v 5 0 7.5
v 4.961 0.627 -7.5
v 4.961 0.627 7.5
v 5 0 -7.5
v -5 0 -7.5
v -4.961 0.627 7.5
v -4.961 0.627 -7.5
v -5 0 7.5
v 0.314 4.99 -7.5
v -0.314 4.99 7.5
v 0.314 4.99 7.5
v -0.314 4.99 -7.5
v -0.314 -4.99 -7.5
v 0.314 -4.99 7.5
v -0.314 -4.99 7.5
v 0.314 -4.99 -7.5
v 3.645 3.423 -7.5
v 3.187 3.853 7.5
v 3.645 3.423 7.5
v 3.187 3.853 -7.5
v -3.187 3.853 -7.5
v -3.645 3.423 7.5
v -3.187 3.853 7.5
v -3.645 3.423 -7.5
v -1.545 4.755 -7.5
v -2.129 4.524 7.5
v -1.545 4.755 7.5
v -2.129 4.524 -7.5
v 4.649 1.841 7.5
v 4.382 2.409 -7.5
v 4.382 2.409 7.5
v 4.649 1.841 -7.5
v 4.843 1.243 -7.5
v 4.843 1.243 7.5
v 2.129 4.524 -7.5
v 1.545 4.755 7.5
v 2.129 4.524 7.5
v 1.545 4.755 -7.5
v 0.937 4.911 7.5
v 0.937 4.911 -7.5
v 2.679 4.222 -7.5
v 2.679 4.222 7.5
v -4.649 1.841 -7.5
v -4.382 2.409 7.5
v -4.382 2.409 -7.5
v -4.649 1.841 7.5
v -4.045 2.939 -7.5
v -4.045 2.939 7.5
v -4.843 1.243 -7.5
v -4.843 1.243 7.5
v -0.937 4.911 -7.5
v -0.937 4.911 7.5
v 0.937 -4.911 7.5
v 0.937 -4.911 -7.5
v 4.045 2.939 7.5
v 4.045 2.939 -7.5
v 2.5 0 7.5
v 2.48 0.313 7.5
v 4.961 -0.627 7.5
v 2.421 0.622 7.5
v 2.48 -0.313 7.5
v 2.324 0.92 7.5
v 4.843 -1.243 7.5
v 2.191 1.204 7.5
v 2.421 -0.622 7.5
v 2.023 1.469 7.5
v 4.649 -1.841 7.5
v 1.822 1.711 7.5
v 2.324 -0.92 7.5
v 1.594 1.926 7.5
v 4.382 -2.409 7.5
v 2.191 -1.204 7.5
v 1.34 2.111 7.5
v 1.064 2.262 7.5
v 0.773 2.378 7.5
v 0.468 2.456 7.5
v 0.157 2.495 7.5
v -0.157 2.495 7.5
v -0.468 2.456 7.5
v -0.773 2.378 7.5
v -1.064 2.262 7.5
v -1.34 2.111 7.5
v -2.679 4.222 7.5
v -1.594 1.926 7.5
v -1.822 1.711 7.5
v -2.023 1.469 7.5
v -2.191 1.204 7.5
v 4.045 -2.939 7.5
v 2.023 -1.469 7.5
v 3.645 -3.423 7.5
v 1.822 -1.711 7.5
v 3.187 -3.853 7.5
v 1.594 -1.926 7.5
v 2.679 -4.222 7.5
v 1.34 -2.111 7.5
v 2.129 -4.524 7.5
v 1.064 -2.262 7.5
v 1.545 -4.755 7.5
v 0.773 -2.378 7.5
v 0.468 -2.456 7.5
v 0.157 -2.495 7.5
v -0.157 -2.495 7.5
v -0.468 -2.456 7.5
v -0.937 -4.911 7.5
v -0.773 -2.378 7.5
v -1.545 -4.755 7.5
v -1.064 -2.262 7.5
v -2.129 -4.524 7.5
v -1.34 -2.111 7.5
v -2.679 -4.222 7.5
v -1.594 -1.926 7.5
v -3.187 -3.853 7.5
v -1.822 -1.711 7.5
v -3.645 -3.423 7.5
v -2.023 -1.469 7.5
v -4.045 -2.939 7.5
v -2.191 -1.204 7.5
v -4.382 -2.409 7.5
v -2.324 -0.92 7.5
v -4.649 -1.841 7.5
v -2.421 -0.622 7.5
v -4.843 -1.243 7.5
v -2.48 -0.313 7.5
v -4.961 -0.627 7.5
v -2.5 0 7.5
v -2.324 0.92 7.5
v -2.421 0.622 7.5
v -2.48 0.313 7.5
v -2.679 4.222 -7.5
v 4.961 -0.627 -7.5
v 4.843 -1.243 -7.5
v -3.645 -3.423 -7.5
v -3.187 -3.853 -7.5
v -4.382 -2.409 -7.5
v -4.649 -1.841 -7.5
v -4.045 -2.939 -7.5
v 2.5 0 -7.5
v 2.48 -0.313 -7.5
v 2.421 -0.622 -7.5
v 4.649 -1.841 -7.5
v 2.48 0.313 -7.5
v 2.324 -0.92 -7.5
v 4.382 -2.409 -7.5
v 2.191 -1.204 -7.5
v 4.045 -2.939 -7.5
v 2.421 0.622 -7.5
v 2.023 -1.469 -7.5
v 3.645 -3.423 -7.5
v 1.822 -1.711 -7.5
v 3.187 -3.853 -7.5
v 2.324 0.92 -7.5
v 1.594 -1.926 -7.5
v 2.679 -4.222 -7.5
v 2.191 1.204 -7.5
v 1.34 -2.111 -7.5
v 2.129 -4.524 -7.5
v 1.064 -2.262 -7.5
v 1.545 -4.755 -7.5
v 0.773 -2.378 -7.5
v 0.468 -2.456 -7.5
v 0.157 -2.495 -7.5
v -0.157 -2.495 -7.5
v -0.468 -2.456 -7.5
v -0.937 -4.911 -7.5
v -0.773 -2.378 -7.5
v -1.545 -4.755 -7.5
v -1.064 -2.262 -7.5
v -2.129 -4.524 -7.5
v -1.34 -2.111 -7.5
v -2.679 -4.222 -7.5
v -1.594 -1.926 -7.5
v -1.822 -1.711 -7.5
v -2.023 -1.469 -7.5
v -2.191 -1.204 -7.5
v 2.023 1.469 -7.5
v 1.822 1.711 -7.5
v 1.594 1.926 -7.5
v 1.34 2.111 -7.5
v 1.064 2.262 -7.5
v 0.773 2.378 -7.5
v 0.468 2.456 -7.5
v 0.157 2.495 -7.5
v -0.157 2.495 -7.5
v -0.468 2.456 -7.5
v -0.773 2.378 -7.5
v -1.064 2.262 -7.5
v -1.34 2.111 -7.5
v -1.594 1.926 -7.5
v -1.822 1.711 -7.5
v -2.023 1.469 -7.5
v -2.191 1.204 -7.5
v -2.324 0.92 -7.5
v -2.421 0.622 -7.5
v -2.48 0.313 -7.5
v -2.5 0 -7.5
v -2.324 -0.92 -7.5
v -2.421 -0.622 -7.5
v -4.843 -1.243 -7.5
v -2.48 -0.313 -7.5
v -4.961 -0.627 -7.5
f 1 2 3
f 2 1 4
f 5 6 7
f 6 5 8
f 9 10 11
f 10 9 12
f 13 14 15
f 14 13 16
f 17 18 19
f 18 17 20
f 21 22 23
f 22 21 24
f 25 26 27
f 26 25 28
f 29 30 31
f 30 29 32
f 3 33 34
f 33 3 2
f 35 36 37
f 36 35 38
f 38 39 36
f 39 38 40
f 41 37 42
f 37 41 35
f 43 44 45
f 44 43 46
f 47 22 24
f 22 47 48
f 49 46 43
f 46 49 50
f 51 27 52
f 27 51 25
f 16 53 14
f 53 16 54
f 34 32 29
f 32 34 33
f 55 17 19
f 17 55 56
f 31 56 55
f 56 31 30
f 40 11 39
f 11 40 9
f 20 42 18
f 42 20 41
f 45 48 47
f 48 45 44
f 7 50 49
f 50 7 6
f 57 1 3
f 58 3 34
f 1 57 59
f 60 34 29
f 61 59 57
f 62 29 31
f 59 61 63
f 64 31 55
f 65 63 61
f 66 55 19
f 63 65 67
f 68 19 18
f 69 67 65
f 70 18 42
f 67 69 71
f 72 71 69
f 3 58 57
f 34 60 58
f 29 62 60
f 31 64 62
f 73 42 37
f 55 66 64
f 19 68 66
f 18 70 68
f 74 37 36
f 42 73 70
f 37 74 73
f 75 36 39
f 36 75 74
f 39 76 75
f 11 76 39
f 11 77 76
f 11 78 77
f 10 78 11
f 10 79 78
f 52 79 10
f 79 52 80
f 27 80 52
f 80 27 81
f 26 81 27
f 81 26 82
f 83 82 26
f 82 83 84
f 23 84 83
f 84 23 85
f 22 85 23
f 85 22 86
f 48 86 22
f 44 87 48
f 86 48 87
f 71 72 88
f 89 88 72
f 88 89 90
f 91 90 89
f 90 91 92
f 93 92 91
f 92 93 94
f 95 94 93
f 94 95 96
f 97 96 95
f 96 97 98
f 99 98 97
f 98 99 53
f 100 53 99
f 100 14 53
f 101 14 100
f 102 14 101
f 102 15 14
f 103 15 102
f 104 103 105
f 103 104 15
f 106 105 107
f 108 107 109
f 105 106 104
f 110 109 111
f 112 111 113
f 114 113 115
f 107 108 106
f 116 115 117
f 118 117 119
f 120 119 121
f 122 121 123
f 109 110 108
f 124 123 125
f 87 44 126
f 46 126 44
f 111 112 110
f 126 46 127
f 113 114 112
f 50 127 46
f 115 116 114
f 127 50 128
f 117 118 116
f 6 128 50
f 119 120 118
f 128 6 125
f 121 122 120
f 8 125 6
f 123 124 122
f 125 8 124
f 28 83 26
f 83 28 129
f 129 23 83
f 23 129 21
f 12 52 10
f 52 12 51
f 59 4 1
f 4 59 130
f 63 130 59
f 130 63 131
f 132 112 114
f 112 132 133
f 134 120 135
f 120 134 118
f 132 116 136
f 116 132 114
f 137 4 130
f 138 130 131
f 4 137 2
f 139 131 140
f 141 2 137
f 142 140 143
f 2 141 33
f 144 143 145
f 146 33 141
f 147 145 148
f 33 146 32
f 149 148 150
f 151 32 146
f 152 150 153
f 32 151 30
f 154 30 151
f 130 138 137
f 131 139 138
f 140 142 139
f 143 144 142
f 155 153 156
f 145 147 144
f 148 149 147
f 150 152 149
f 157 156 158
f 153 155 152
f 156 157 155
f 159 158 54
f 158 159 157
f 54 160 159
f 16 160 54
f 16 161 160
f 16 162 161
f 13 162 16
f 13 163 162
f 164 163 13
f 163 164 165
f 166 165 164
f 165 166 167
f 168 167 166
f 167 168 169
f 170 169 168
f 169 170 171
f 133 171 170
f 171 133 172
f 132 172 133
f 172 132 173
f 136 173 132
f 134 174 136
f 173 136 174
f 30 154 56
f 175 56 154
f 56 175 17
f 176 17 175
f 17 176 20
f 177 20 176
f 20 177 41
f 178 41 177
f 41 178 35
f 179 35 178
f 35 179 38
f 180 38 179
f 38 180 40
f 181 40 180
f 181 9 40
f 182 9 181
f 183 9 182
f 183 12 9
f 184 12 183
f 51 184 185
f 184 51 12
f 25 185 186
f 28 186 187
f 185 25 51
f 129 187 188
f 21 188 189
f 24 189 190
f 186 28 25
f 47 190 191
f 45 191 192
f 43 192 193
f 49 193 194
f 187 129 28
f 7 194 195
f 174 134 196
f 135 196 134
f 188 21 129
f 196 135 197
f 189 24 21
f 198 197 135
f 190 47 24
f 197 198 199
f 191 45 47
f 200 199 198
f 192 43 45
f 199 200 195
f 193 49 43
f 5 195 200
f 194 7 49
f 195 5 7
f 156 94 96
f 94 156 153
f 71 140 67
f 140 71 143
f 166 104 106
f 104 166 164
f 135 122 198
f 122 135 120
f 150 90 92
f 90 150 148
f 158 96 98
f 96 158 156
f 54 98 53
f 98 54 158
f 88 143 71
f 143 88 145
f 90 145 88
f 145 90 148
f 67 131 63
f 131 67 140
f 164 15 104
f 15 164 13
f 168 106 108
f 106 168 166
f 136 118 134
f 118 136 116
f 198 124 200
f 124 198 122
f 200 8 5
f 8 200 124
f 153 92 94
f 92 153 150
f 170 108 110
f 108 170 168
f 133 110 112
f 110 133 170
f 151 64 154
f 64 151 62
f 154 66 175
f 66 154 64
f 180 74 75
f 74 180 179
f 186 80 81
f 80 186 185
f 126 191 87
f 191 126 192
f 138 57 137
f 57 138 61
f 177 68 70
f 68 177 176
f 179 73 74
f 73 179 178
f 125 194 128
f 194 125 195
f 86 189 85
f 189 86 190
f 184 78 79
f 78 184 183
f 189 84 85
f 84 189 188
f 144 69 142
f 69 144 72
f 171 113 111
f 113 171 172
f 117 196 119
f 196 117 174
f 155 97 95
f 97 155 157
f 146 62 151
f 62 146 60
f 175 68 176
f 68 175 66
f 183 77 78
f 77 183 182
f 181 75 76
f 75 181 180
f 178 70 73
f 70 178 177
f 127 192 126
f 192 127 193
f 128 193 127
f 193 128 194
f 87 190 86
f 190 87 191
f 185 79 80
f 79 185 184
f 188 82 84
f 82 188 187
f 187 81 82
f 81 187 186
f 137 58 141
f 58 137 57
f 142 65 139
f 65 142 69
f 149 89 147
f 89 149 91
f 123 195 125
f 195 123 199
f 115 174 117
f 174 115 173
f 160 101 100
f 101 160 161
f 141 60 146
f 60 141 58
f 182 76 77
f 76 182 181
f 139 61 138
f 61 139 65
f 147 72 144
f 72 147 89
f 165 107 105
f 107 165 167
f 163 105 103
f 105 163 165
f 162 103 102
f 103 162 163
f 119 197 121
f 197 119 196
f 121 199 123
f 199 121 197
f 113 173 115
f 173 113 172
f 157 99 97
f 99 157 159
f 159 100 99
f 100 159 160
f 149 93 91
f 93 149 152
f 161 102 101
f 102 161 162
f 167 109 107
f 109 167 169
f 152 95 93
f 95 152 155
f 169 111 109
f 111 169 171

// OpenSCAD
$fn = 50;


difference() {
	union() {
		translate(v = [0, 0, -7.5000000000]) {
			cylinder(h = 15, r = 5.0000000000);
		}
	}
	union() {
		translate(v = [0, 0, -100.0000000000]) {
			cylinder(h = 200, r = 2.5000000000);
		}
	}
}
